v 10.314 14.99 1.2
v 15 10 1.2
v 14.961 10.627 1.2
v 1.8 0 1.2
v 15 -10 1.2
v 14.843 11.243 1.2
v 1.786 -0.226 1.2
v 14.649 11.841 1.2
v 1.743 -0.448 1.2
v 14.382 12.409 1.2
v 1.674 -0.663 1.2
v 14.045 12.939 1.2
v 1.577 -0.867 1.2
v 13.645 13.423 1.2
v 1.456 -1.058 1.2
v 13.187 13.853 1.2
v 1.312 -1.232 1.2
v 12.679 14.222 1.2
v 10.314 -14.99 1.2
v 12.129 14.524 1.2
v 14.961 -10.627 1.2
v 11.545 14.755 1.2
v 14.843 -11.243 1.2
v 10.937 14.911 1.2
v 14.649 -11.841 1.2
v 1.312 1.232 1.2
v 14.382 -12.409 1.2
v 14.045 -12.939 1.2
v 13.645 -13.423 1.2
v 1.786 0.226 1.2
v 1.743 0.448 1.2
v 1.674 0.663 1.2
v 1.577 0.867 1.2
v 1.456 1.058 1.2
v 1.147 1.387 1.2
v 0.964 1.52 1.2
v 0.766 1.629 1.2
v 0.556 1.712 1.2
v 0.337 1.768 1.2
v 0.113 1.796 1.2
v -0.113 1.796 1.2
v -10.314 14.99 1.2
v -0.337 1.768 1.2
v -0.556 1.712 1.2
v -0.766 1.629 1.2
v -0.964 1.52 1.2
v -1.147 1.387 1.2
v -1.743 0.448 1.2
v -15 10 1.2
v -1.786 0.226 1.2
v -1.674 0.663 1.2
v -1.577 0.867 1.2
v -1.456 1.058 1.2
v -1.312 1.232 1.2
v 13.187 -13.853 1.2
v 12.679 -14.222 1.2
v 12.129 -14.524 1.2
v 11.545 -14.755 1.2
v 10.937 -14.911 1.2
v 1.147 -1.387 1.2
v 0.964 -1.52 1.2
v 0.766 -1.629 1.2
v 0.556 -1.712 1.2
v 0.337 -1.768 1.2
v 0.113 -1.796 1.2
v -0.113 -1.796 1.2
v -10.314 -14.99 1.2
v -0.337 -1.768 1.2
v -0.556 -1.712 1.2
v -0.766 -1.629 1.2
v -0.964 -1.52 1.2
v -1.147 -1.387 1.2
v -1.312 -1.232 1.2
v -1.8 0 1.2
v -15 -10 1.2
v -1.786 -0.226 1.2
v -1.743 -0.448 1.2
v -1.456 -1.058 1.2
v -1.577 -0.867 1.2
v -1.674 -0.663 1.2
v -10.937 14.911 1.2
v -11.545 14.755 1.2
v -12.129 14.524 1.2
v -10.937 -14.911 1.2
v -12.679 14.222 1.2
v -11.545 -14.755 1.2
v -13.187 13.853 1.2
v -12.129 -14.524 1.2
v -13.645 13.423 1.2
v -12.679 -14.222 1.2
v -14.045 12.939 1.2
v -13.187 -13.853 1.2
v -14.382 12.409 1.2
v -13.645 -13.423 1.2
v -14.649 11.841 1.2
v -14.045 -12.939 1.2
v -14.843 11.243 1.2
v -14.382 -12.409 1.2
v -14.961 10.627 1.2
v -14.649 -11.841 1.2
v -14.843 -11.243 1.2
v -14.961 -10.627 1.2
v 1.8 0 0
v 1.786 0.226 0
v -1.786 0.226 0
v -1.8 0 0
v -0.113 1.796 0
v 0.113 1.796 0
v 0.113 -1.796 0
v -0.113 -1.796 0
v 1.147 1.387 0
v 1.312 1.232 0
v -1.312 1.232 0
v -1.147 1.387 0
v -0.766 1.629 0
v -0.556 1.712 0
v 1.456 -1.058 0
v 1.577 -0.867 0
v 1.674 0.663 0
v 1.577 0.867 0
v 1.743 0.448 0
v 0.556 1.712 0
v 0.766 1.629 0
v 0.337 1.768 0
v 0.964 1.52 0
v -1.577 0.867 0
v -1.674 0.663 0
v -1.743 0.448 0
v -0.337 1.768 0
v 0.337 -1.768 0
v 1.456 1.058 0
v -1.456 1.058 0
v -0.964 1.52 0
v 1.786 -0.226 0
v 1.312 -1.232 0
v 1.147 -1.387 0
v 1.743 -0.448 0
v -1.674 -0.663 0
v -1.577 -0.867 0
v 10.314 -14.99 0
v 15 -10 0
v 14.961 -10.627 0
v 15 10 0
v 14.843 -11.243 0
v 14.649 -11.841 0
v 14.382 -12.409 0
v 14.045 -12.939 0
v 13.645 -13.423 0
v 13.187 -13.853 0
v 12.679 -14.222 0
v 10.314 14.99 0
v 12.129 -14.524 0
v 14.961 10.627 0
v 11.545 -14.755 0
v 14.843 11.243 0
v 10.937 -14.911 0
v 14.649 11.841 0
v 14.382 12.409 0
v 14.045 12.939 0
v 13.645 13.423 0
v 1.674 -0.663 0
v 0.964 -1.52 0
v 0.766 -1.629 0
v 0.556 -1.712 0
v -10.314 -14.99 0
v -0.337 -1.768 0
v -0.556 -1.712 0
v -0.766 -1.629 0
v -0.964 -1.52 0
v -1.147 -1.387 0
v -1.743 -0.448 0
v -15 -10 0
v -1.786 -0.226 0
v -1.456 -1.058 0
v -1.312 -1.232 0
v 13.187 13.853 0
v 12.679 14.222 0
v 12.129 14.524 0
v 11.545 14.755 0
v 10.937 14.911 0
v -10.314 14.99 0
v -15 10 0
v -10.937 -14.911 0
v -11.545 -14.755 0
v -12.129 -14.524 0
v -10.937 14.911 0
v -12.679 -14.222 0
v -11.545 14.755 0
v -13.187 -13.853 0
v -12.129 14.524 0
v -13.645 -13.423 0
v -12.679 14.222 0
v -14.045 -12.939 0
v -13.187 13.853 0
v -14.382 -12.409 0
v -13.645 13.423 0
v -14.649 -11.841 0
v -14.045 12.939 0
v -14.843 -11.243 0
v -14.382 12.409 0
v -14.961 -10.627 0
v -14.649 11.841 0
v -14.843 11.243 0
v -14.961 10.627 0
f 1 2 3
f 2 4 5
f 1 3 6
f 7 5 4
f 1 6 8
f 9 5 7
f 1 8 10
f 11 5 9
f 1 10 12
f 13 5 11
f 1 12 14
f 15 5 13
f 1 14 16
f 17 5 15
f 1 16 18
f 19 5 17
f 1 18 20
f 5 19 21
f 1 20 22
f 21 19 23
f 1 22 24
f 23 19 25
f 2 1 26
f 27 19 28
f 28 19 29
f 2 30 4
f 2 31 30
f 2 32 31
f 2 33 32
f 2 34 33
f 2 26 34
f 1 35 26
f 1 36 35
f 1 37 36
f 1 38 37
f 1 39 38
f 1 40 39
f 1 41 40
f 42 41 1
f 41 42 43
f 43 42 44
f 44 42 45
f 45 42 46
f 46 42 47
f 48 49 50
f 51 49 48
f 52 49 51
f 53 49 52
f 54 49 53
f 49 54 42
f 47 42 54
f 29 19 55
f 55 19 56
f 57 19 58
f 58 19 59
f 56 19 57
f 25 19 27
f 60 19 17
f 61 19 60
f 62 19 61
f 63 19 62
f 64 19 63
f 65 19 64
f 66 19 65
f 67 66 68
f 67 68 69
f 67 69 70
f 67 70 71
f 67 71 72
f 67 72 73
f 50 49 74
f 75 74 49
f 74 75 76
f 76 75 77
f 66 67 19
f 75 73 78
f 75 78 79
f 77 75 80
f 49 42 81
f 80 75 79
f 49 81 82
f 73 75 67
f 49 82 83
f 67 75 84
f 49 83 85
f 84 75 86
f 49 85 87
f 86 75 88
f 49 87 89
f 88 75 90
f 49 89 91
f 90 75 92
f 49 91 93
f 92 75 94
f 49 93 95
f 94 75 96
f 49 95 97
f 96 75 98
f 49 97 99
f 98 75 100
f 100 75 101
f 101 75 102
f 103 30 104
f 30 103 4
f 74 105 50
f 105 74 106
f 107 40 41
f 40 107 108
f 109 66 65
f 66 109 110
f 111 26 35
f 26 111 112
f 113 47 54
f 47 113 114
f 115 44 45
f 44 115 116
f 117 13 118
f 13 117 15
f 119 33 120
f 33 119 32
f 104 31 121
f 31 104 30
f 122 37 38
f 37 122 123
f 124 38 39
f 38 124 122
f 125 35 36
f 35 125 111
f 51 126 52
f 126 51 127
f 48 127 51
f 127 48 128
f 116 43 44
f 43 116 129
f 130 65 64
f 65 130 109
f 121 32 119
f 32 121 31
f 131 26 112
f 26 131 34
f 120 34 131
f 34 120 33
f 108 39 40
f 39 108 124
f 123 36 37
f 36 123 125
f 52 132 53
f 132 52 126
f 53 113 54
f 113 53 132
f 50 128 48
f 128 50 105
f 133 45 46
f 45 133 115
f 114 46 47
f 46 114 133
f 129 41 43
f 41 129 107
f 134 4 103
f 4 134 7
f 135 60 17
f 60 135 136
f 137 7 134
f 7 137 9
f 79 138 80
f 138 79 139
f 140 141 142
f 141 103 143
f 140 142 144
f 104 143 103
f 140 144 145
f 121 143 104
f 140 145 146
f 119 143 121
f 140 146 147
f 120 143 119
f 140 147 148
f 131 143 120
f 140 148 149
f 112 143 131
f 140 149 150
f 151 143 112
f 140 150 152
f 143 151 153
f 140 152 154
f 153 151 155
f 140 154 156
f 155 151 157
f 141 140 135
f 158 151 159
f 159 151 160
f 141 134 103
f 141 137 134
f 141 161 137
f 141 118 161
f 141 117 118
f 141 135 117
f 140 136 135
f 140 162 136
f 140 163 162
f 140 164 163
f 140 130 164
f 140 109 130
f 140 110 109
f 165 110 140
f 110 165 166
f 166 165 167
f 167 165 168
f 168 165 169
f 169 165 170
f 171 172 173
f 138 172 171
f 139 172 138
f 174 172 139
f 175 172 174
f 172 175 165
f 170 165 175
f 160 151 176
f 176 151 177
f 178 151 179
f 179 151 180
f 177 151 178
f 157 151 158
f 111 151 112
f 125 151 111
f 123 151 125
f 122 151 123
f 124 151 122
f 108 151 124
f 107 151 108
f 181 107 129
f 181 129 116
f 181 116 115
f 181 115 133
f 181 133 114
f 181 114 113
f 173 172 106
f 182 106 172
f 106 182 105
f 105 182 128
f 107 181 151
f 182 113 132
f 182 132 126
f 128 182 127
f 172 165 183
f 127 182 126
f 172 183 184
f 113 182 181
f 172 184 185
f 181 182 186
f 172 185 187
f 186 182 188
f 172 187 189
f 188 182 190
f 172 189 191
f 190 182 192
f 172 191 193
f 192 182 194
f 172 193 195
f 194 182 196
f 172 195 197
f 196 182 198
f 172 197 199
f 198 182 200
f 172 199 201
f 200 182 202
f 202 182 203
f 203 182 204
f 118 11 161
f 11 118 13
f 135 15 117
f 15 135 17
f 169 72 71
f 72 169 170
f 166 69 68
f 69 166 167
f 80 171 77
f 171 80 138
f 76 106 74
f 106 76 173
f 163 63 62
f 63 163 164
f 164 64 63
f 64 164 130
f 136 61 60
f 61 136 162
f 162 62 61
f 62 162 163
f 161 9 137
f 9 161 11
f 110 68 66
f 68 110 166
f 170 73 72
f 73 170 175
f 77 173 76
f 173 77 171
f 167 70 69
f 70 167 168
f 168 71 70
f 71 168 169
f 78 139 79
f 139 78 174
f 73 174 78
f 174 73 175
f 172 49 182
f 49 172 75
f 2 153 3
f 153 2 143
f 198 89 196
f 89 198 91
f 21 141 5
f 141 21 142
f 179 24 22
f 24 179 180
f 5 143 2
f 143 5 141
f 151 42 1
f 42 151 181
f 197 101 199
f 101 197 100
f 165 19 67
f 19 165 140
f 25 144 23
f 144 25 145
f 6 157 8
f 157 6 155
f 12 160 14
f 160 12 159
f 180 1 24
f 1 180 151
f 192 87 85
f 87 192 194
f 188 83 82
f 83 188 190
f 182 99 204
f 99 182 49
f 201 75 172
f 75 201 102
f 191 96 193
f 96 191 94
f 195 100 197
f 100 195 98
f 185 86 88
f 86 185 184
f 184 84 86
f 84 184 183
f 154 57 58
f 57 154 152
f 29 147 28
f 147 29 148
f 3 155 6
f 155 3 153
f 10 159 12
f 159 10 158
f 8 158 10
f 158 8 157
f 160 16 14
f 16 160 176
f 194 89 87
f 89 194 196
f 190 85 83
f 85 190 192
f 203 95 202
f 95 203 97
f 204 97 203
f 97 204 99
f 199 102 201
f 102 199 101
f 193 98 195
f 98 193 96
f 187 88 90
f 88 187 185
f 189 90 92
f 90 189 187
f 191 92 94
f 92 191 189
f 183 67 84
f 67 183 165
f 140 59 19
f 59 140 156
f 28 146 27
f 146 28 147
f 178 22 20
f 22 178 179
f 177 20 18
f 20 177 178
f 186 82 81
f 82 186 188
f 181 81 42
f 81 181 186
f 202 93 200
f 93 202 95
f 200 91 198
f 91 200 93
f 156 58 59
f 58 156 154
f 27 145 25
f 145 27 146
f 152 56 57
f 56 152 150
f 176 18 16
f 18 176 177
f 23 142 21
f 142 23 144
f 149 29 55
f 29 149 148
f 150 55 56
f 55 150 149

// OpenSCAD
$fn = 50;


difference() {
	union() {
		hull() {
			translate(v = [-10.0000000000, 10.0000000000, 0]) {
				cylinder(h = 18, r = 5);
			}
			translate(v = [10.0000000000, 10.0000000000, 0]) {
				cylinder(h = 18, r = 5);
			}
			translate(v = [-10.0000000000, -10.0000000000, 0]) {
				cylinder(h = 18, r = 5);
			}
			translate(v = [10.0000000000, -10.0000000000, 0]) {
				cylinder(h = 18, r = 5);
			}
		}
	}
	union() {
		translate(v = [0, 0, 1.2000000000]) {
			hull() {
				translate(v = [-10.0000000000, 10.0000000000, 0]) {
					cylinder(h = 16.8000000000, r = 3.8000000000);
				}
				translate(v = [10.0000000000, 10.0000000000, 0]) {
					cylinder(h = 16.8000000000, r = 3.8000000000);
				}
				translate(v = [-10.0000000000, -10.0000000000, 0]) {
					cylinder(h = 16.8000000000, r = 3.8000000000);
				}
				translate(v = [10.0000000000, -10.0000000000, 0]) {
					cylinder(h = 16.8000000000, r = 3.8000000000);
				}
			}
		}
		#cylinder(h = 1.2000000000, r = 1.8000000000);
		translate(v = [-250.0000000000, -250.0000000000, 1.2000000000]) {
			cube(size = [500, 500, 500]);
		}
		translate(v = [-250.0000000000, -250.0000000000, 1.2000000000]) {
			cube(size = [500, 500, 500]);
		}
		translate(v = [-250.0000000000, -250.0000000000, 1.2000000000]) {
			cube(size = [500, 500, 500]);
		}
	}
}
